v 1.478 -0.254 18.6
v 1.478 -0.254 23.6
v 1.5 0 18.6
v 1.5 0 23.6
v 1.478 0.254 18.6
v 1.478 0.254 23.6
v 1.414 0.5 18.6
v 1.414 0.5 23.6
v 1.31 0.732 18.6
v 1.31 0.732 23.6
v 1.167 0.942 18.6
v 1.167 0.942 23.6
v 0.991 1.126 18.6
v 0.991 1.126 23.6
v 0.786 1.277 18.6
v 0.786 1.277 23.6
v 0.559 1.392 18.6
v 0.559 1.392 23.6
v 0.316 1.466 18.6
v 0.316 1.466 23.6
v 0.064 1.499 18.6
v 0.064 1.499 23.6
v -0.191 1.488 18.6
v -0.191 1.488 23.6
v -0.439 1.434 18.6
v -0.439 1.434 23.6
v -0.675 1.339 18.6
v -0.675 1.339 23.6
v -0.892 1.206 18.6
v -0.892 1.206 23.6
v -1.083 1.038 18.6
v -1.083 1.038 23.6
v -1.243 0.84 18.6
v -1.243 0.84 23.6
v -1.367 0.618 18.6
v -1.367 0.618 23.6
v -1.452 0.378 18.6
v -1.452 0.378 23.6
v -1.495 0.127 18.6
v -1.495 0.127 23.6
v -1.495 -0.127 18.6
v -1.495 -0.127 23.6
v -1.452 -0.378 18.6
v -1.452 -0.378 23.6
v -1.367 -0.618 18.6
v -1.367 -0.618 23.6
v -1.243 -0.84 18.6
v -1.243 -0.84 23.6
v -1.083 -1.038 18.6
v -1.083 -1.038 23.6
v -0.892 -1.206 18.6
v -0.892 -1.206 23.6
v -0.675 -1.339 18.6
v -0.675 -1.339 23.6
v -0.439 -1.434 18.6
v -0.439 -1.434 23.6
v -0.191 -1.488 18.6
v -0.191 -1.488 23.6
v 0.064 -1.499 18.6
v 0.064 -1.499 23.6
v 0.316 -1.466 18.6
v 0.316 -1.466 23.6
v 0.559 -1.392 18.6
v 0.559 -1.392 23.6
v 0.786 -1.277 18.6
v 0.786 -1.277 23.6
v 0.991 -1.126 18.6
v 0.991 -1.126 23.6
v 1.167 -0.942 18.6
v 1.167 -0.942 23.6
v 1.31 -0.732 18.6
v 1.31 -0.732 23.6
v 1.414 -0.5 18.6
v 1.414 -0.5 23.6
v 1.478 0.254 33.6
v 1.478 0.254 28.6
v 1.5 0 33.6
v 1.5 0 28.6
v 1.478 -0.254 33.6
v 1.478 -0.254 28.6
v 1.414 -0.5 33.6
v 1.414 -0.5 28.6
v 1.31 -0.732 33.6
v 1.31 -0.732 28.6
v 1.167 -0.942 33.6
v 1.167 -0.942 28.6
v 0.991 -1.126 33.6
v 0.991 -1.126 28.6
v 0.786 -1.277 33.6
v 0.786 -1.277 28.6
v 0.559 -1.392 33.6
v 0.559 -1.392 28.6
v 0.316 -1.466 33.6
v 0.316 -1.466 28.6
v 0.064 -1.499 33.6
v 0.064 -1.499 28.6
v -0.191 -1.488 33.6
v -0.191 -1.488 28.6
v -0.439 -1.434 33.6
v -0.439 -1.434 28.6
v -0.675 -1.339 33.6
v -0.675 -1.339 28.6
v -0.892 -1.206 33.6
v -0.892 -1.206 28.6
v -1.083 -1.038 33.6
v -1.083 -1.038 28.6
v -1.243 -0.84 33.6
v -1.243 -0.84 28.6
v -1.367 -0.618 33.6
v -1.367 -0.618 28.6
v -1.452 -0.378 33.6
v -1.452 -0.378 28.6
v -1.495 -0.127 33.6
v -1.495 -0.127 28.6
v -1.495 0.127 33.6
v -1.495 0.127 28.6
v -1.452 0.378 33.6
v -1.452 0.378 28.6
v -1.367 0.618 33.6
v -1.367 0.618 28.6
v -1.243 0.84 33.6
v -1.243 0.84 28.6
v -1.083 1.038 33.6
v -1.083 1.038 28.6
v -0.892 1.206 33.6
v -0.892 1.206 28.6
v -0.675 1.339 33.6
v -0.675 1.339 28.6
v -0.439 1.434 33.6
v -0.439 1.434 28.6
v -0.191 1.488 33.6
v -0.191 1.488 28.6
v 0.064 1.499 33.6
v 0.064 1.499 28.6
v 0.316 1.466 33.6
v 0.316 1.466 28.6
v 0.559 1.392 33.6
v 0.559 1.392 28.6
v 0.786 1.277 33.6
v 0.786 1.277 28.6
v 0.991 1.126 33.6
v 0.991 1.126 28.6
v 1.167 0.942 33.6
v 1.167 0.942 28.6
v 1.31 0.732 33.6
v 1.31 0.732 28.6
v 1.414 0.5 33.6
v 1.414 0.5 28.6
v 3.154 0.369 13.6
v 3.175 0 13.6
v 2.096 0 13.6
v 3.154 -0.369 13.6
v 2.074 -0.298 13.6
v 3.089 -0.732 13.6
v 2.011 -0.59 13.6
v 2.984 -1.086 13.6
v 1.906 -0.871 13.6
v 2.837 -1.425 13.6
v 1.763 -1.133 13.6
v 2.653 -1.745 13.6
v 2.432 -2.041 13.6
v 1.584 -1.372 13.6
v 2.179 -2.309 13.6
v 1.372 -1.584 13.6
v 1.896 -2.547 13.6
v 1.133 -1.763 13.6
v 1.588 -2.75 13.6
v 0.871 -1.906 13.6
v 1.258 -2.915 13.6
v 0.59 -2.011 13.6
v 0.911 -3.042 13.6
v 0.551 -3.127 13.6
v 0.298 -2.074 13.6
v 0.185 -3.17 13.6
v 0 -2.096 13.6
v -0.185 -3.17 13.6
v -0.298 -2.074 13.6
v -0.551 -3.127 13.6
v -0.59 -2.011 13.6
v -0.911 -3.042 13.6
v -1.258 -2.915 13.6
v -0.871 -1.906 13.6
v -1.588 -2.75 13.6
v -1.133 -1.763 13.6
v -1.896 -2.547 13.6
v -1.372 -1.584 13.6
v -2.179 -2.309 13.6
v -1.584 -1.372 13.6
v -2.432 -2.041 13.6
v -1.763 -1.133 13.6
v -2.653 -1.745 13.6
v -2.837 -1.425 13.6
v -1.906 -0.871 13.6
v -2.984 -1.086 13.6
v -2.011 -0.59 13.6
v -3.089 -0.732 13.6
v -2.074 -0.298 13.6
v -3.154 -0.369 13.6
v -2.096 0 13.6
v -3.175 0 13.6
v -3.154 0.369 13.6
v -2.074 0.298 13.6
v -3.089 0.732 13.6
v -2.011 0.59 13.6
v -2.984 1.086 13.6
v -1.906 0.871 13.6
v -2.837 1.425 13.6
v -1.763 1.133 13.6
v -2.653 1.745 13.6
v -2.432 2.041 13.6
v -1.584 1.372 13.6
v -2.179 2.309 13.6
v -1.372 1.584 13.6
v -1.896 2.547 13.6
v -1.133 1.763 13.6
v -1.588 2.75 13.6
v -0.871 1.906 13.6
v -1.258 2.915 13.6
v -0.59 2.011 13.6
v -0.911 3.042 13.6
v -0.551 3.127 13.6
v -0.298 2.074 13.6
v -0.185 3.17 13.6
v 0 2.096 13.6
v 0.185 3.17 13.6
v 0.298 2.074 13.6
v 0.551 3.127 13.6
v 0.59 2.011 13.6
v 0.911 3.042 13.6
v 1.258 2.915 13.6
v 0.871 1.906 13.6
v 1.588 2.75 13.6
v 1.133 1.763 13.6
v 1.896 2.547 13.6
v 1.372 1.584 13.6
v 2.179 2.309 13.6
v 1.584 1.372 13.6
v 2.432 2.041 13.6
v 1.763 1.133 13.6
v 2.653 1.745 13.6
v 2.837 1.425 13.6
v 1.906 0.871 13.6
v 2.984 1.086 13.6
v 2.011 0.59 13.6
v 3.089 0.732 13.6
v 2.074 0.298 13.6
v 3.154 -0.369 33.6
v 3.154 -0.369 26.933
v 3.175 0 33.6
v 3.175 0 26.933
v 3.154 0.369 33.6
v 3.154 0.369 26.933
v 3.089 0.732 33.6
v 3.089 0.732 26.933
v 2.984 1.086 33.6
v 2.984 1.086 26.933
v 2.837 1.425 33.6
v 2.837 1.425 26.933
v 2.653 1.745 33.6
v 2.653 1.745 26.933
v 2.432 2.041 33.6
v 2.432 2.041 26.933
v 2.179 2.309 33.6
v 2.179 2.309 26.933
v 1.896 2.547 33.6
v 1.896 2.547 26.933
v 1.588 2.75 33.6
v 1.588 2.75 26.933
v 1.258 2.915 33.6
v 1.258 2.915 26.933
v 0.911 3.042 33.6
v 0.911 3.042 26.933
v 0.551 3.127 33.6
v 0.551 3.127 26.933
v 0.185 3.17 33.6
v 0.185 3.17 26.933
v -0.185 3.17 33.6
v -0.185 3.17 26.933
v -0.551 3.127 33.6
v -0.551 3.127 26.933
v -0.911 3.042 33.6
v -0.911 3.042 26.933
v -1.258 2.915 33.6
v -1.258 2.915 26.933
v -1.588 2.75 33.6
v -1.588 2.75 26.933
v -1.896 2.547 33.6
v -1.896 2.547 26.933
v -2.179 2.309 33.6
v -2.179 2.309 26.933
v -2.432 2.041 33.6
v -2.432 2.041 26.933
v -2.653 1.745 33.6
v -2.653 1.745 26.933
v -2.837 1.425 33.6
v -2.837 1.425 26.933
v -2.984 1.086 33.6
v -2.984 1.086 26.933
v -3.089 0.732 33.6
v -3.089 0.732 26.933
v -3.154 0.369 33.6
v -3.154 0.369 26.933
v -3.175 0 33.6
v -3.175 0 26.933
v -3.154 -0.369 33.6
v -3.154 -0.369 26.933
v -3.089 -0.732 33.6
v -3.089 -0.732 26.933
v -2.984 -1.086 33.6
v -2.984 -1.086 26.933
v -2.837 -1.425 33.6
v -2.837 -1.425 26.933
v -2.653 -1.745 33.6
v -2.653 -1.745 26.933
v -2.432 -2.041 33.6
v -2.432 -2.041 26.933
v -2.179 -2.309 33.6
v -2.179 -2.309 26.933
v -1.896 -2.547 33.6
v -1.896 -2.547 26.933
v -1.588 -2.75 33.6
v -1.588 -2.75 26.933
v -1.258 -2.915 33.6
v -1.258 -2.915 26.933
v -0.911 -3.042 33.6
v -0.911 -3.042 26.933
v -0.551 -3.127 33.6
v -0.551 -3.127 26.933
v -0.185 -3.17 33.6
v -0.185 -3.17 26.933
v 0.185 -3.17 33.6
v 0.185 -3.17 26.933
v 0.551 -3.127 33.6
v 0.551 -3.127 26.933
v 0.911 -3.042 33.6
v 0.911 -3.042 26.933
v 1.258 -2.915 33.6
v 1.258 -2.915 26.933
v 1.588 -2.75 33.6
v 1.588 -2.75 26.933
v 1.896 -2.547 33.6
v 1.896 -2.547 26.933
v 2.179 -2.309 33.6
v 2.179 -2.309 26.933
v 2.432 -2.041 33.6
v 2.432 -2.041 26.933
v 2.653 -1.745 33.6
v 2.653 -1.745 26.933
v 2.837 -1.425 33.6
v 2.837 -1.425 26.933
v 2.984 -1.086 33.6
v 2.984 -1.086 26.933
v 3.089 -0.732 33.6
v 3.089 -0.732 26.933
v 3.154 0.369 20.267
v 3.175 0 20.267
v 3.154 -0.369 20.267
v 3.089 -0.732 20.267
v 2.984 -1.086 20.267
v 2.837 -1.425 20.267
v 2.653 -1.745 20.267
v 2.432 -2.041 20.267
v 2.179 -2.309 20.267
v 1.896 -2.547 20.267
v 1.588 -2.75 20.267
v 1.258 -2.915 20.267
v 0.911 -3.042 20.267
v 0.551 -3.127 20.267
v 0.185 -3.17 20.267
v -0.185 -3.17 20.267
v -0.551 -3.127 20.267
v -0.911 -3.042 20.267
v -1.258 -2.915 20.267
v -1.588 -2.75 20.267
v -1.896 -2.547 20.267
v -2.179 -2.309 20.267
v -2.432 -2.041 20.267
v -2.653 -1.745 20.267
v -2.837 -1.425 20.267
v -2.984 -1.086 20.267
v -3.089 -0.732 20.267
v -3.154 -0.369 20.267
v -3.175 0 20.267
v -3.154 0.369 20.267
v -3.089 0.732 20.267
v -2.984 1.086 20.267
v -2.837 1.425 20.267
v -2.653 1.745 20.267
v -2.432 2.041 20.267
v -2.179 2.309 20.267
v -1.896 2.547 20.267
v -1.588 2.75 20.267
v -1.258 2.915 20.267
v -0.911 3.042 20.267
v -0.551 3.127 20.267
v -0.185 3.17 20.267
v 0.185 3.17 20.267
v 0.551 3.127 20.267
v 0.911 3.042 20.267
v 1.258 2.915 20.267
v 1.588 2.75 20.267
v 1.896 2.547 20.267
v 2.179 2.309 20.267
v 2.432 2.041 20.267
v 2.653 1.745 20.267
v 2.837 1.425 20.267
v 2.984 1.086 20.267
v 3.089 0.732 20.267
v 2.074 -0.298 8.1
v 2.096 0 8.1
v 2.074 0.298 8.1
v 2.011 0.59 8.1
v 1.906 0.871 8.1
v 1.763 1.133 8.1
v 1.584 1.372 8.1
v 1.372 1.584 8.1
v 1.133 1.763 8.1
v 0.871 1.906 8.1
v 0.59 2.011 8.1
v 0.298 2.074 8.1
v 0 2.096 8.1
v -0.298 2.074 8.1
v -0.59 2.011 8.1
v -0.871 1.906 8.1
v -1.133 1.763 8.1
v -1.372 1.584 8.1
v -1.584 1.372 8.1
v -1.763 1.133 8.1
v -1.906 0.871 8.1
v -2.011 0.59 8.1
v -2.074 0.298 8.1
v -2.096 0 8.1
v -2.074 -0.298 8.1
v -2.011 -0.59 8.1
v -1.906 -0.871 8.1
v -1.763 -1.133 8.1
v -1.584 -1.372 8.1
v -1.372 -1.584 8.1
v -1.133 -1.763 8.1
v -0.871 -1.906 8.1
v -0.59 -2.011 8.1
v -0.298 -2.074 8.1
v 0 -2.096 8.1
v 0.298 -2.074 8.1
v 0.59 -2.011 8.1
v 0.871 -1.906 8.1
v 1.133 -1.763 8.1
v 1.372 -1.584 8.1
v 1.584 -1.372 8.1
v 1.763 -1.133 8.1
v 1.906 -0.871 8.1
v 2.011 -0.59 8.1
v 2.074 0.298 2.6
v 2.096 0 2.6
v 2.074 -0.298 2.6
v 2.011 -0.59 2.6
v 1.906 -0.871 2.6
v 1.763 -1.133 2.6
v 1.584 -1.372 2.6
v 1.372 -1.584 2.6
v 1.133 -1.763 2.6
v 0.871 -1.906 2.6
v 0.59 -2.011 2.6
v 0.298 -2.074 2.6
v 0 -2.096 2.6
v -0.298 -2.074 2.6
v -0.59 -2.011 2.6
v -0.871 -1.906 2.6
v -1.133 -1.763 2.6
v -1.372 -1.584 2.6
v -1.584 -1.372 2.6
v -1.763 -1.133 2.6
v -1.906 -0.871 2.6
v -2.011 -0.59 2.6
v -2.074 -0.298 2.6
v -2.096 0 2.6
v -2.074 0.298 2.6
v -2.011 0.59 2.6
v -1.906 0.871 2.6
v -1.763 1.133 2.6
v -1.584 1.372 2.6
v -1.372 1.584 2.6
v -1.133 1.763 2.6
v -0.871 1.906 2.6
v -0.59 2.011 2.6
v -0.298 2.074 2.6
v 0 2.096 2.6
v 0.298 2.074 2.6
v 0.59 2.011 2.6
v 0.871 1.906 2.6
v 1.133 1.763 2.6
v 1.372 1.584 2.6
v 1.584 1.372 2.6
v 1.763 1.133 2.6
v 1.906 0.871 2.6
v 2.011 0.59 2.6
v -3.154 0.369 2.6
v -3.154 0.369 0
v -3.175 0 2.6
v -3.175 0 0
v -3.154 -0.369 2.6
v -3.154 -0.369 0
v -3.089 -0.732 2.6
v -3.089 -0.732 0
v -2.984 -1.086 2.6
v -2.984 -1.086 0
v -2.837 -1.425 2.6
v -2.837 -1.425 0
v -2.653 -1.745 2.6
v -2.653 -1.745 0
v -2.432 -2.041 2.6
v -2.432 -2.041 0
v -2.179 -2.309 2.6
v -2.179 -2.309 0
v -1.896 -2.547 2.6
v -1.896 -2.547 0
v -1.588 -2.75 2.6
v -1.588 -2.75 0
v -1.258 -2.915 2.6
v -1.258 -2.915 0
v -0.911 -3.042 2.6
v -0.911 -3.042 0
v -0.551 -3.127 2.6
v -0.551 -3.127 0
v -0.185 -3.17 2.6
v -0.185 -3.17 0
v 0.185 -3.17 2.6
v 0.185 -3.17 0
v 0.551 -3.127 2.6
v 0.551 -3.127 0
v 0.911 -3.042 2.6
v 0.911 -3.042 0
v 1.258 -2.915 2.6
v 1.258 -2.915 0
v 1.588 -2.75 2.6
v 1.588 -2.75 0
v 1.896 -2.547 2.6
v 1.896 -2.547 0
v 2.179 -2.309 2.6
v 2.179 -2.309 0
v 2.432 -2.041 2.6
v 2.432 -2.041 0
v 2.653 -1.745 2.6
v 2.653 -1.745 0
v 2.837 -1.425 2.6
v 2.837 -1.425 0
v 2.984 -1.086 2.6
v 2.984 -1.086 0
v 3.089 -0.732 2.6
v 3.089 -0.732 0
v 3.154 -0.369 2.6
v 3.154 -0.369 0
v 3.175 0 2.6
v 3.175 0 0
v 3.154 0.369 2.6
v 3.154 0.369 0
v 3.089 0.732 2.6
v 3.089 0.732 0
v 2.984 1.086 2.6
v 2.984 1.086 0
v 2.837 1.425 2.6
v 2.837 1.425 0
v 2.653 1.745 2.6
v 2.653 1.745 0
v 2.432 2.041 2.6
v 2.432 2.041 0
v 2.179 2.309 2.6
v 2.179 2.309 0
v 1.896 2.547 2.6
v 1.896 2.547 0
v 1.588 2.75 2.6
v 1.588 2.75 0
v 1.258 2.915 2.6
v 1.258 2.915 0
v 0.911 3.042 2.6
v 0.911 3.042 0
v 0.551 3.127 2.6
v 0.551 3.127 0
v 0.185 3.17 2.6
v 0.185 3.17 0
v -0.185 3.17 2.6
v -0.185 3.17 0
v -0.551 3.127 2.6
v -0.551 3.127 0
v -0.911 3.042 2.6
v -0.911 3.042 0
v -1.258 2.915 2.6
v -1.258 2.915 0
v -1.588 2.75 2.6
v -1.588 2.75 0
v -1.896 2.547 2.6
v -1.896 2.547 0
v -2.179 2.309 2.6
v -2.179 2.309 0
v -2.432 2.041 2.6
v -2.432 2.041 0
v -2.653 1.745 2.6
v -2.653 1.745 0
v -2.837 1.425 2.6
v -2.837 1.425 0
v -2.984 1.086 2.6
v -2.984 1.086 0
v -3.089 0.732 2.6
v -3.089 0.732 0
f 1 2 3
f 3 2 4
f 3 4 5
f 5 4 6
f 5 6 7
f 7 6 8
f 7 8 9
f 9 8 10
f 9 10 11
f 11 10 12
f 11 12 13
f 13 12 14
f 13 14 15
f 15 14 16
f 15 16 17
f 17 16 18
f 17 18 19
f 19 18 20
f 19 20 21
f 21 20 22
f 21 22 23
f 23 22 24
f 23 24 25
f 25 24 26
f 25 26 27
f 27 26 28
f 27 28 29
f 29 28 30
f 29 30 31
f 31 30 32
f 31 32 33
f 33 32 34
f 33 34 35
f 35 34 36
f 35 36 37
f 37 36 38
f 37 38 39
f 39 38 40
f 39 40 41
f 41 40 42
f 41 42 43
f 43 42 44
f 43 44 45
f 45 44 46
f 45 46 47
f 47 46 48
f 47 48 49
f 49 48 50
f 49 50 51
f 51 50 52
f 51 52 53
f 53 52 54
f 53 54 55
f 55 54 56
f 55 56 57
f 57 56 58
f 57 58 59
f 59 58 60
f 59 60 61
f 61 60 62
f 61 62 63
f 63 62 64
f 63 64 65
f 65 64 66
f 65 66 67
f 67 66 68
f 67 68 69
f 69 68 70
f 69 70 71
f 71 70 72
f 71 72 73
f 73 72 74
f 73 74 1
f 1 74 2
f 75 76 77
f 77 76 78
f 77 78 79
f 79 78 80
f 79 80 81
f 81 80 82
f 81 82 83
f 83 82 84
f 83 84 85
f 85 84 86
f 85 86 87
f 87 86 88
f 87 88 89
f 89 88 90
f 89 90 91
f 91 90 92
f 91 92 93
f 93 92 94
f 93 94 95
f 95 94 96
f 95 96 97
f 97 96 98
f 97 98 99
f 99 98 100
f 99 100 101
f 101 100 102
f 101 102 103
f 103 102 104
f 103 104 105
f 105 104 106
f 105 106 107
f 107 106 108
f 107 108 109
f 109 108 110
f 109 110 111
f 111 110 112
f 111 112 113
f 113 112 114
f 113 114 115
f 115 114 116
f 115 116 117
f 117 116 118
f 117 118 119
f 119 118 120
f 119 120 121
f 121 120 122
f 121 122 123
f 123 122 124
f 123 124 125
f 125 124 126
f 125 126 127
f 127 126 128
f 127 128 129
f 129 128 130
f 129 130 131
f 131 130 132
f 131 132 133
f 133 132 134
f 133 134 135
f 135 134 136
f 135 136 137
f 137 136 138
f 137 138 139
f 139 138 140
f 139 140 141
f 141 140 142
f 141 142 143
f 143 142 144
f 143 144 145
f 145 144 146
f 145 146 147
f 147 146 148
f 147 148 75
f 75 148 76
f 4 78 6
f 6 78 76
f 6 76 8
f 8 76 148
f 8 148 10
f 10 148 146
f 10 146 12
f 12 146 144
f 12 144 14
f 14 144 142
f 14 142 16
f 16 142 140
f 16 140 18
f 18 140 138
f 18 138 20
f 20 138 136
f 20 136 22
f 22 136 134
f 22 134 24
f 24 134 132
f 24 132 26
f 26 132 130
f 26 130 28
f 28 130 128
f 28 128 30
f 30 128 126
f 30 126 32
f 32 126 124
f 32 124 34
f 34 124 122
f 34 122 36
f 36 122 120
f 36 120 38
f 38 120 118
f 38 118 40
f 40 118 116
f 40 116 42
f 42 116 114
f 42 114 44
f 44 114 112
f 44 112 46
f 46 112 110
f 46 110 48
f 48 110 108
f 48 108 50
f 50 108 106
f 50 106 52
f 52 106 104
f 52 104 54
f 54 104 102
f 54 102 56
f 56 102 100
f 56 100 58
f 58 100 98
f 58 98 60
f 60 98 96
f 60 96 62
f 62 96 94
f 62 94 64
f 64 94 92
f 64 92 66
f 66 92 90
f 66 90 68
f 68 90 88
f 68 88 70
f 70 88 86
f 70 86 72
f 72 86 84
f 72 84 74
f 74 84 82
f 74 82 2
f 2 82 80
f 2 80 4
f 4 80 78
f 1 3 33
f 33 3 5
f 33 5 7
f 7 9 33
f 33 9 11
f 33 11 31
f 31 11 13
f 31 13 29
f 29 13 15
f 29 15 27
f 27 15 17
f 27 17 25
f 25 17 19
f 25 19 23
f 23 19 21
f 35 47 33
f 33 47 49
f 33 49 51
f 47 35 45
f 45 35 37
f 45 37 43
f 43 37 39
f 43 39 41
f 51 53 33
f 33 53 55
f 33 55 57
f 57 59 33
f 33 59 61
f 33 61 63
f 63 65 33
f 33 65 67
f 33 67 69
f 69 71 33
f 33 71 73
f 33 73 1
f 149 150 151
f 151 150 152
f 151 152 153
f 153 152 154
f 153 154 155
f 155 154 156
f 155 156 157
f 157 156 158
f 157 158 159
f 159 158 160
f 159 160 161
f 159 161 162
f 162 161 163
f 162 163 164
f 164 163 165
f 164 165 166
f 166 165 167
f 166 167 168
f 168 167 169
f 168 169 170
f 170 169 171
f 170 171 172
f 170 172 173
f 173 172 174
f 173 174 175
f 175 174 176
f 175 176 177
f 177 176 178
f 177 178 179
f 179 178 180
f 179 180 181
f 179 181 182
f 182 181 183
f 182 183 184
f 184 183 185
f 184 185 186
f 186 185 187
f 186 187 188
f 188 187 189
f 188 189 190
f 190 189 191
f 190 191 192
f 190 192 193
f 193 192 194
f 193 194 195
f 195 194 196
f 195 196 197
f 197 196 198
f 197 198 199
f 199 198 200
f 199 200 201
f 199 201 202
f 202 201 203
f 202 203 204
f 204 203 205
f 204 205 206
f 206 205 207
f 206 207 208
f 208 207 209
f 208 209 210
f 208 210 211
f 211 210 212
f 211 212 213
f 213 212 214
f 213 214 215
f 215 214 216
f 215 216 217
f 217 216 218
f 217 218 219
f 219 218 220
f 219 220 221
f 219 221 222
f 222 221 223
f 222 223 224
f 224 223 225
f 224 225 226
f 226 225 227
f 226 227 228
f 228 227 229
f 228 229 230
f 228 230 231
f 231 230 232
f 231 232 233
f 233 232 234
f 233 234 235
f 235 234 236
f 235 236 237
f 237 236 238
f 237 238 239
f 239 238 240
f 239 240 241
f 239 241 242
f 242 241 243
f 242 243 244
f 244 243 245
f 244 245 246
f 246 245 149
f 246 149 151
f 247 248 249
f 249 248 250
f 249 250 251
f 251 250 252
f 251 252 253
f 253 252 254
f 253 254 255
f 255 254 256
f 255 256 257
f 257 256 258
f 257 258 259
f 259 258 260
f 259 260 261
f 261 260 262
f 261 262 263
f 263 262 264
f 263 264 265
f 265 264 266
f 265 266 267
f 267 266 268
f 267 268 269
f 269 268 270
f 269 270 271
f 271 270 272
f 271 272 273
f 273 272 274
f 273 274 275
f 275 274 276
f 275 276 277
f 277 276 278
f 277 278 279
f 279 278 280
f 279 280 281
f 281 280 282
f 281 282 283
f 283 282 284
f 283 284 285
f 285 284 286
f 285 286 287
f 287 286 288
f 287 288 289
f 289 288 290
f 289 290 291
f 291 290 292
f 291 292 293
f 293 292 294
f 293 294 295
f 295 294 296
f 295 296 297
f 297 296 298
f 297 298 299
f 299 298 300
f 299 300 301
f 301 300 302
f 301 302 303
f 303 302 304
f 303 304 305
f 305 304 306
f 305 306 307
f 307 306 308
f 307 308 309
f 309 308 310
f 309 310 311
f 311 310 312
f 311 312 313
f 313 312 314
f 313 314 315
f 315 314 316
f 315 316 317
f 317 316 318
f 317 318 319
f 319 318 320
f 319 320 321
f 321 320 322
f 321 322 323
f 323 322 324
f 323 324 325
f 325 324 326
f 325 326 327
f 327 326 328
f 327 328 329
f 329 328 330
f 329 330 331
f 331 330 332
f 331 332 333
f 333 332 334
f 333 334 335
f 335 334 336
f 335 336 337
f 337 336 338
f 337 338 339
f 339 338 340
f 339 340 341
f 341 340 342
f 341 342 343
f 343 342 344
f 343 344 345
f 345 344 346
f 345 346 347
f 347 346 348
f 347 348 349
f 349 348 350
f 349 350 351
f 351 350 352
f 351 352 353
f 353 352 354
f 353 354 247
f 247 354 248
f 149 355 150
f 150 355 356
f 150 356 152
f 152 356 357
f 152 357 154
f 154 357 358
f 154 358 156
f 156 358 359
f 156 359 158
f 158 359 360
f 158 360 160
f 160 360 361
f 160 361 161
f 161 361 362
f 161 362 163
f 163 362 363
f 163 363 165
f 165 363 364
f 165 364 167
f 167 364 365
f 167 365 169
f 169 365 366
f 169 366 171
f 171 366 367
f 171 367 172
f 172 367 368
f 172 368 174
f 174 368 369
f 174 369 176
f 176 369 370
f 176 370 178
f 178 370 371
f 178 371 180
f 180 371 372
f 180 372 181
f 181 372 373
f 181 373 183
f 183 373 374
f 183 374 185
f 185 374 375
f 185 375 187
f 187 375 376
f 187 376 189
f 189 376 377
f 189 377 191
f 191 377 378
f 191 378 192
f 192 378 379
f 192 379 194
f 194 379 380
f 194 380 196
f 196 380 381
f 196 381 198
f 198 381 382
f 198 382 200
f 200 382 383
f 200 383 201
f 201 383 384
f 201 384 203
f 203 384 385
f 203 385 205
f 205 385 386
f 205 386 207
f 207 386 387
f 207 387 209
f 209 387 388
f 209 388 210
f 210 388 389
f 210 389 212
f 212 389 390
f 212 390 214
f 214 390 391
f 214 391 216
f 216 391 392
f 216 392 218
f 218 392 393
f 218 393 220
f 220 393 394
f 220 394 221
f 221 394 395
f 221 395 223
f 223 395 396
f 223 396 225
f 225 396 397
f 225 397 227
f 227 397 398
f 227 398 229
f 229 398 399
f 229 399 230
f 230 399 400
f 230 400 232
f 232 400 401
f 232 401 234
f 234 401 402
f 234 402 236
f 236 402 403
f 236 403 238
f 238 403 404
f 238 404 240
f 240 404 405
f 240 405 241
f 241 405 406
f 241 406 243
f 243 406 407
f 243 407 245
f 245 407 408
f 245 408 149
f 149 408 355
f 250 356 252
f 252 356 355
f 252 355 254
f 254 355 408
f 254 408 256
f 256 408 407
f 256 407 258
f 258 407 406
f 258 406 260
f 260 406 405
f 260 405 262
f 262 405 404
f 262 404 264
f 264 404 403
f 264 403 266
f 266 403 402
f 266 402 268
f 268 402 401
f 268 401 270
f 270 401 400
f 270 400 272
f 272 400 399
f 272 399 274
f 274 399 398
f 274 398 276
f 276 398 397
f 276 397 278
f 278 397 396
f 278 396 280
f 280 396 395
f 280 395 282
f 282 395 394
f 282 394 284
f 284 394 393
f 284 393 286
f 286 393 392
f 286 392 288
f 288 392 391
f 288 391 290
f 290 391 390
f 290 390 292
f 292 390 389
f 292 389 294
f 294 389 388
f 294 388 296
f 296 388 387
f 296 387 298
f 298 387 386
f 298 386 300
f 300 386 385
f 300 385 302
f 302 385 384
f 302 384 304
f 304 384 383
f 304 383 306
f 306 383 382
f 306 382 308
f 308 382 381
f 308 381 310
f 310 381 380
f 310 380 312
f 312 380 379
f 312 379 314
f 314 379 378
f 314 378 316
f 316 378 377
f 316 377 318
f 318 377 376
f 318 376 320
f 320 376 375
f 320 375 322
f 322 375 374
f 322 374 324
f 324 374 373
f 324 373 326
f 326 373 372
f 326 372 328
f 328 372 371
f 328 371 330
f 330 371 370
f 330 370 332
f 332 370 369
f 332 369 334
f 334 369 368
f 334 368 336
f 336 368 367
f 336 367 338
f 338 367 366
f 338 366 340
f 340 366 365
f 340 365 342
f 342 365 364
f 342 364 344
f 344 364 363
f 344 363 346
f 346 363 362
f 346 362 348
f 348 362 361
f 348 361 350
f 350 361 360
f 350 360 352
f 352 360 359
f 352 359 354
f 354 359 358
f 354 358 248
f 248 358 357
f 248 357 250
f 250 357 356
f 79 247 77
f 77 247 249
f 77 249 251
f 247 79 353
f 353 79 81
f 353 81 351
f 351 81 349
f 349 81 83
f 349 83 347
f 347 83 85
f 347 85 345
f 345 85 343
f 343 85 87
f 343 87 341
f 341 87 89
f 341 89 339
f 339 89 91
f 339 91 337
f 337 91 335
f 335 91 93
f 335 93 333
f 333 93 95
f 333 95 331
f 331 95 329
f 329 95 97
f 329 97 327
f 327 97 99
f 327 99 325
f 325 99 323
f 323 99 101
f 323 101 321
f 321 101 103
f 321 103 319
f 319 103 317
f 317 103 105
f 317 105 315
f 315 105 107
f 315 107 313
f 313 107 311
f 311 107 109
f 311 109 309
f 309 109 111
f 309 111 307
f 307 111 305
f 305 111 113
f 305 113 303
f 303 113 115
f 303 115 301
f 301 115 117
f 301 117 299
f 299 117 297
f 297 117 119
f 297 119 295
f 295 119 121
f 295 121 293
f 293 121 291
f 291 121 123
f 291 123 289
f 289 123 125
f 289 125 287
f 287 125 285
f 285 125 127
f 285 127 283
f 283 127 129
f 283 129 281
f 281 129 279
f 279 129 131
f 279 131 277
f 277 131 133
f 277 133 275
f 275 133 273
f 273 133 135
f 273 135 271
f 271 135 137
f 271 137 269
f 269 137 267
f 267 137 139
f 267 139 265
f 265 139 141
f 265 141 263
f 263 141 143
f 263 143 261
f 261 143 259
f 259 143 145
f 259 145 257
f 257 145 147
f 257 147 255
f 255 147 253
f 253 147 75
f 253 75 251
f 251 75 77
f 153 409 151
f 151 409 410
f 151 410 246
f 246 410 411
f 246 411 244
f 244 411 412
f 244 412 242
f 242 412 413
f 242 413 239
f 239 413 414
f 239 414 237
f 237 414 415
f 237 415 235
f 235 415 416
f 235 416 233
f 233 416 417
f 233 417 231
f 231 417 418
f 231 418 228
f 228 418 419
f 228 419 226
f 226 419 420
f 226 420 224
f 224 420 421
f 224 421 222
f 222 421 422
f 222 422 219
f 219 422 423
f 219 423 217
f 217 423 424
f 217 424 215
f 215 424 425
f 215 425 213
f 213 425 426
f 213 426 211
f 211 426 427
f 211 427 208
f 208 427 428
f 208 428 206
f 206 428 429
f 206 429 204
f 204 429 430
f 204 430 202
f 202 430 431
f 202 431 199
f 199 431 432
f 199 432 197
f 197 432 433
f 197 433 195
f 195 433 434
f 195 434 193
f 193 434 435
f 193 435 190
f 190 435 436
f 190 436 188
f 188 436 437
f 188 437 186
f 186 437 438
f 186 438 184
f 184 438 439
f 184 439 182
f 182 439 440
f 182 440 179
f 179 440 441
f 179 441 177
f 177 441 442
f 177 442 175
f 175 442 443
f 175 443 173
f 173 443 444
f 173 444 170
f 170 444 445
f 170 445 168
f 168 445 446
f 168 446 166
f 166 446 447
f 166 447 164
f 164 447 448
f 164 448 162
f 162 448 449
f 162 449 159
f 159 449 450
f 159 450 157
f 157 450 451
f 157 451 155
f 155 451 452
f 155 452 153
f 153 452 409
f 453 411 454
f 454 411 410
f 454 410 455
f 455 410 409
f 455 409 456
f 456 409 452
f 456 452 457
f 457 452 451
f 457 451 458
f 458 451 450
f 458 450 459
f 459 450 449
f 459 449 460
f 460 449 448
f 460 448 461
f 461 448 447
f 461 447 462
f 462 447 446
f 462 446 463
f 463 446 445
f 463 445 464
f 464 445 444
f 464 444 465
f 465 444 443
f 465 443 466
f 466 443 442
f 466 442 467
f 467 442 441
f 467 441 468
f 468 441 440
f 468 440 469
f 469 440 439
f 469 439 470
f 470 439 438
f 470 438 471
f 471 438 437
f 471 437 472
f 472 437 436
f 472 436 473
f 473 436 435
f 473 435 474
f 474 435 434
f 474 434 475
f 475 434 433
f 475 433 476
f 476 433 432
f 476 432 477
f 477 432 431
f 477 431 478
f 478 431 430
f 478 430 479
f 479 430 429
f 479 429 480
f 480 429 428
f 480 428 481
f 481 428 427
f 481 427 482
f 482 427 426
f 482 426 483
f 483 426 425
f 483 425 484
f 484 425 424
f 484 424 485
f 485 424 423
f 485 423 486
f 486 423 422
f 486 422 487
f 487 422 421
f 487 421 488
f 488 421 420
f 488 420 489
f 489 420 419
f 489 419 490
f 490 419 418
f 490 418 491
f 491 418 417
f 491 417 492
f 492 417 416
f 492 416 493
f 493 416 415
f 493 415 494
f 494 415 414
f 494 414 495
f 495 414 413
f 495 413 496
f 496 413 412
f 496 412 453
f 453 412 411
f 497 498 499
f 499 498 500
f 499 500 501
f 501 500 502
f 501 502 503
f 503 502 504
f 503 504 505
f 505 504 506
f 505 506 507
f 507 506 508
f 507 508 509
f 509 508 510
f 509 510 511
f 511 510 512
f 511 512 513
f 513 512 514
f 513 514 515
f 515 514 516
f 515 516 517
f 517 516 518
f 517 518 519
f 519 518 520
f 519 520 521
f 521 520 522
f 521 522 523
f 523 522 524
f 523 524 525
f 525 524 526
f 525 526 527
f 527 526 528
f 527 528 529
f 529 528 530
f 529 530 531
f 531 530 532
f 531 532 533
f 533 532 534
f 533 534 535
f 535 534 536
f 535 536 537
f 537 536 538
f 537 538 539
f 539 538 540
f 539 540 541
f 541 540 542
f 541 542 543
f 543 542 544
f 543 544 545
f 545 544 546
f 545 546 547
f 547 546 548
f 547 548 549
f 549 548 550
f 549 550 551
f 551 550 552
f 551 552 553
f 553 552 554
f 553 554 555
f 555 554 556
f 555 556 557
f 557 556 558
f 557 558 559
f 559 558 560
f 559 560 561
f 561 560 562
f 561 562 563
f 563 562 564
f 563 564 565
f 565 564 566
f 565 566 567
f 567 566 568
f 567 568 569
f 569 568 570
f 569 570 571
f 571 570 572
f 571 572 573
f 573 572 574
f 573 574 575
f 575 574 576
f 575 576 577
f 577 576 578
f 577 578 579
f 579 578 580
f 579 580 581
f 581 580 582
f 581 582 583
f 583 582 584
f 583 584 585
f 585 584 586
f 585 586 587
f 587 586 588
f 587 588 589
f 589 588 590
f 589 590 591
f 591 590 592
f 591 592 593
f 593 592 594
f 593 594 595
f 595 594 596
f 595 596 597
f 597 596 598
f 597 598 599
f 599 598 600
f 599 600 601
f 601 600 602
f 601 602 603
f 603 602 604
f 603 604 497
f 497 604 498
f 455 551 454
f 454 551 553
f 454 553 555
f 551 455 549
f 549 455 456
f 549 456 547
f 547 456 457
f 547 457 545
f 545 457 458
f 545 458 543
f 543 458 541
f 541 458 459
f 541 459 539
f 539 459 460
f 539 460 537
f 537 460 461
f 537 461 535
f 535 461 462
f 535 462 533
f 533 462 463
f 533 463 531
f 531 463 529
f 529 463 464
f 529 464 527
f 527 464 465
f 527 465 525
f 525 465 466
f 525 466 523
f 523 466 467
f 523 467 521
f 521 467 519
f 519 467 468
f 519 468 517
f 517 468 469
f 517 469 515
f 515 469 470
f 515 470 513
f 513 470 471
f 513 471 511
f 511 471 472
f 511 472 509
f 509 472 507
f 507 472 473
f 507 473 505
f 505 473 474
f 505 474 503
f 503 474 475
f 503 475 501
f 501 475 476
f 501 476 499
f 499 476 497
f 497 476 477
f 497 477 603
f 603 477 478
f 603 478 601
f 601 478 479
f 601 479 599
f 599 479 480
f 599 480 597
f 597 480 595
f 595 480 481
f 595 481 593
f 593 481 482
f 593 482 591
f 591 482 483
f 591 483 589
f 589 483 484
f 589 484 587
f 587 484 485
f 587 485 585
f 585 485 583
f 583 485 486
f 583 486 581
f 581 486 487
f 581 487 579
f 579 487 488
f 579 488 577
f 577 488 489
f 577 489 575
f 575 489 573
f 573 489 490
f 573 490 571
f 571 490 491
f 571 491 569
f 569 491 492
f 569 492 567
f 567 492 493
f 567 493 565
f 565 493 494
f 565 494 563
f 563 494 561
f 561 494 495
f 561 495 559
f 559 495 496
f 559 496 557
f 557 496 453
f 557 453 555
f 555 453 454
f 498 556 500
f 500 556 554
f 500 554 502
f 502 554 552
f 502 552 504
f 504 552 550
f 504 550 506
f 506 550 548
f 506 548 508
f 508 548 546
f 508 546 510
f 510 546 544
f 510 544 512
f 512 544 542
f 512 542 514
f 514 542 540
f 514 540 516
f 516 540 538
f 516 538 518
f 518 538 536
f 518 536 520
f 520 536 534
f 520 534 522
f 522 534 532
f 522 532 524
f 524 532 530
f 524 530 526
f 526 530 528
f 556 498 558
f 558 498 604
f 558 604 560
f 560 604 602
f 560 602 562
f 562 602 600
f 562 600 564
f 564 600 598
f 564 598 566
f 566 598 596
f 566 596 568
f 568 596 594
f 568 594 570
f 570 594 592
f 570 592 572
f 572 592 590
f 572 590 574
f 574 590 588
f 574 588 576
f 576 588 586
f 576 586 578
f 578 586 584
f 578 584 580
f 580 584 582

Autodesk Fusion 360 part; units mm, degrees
sketch "Sketch1" plane through (0, 0, 0) normal (0, 0, 1) x (1, 0, 0)
  circle A0 centre (0, 0) radius 3.175
  dimension "d1" = 6.35
extrude "Extrude1" add sketch "Sketch1" along normal blind 2.6
sketch "Sketch2" plane through (0, 0, 2.6) normal (0, 0, 1) x (-1, 0, 0)
  circle A0 centre (0, 0) radius 3.175
  circle A1 centre (0, 0) radius 2.0955
  dimension "d4" = 4.191
extrude "Extrude2" add sketch "Sketch2" along normal blind 11 contours A1
sketch "Sketch3" plane through (0, 0, 13.6) normal (0, 0, 1) x (-1, 0, 0)
  circle A0 centre (0, 0) radius 2.0955
  circle A1 centre (0, 0) radius 3.175
  dimension "d7" = 6.35
extrude "Extrude3" add sketch "Sketch3" along normal blind 20 contours A0 | A1
sketch "Sketch4" plane through (0, 0, 33.6) normal (0, 0, 1) x (-1, 0, 0)
  circle A0 centre (0, 0) radius 3.175
  circle A1 centre (0, 0) radius 1.5
  dimension "d10" = 3
extrude "Extrude4" cut sketch "Sketch4" against normal blind 15 contours A1
